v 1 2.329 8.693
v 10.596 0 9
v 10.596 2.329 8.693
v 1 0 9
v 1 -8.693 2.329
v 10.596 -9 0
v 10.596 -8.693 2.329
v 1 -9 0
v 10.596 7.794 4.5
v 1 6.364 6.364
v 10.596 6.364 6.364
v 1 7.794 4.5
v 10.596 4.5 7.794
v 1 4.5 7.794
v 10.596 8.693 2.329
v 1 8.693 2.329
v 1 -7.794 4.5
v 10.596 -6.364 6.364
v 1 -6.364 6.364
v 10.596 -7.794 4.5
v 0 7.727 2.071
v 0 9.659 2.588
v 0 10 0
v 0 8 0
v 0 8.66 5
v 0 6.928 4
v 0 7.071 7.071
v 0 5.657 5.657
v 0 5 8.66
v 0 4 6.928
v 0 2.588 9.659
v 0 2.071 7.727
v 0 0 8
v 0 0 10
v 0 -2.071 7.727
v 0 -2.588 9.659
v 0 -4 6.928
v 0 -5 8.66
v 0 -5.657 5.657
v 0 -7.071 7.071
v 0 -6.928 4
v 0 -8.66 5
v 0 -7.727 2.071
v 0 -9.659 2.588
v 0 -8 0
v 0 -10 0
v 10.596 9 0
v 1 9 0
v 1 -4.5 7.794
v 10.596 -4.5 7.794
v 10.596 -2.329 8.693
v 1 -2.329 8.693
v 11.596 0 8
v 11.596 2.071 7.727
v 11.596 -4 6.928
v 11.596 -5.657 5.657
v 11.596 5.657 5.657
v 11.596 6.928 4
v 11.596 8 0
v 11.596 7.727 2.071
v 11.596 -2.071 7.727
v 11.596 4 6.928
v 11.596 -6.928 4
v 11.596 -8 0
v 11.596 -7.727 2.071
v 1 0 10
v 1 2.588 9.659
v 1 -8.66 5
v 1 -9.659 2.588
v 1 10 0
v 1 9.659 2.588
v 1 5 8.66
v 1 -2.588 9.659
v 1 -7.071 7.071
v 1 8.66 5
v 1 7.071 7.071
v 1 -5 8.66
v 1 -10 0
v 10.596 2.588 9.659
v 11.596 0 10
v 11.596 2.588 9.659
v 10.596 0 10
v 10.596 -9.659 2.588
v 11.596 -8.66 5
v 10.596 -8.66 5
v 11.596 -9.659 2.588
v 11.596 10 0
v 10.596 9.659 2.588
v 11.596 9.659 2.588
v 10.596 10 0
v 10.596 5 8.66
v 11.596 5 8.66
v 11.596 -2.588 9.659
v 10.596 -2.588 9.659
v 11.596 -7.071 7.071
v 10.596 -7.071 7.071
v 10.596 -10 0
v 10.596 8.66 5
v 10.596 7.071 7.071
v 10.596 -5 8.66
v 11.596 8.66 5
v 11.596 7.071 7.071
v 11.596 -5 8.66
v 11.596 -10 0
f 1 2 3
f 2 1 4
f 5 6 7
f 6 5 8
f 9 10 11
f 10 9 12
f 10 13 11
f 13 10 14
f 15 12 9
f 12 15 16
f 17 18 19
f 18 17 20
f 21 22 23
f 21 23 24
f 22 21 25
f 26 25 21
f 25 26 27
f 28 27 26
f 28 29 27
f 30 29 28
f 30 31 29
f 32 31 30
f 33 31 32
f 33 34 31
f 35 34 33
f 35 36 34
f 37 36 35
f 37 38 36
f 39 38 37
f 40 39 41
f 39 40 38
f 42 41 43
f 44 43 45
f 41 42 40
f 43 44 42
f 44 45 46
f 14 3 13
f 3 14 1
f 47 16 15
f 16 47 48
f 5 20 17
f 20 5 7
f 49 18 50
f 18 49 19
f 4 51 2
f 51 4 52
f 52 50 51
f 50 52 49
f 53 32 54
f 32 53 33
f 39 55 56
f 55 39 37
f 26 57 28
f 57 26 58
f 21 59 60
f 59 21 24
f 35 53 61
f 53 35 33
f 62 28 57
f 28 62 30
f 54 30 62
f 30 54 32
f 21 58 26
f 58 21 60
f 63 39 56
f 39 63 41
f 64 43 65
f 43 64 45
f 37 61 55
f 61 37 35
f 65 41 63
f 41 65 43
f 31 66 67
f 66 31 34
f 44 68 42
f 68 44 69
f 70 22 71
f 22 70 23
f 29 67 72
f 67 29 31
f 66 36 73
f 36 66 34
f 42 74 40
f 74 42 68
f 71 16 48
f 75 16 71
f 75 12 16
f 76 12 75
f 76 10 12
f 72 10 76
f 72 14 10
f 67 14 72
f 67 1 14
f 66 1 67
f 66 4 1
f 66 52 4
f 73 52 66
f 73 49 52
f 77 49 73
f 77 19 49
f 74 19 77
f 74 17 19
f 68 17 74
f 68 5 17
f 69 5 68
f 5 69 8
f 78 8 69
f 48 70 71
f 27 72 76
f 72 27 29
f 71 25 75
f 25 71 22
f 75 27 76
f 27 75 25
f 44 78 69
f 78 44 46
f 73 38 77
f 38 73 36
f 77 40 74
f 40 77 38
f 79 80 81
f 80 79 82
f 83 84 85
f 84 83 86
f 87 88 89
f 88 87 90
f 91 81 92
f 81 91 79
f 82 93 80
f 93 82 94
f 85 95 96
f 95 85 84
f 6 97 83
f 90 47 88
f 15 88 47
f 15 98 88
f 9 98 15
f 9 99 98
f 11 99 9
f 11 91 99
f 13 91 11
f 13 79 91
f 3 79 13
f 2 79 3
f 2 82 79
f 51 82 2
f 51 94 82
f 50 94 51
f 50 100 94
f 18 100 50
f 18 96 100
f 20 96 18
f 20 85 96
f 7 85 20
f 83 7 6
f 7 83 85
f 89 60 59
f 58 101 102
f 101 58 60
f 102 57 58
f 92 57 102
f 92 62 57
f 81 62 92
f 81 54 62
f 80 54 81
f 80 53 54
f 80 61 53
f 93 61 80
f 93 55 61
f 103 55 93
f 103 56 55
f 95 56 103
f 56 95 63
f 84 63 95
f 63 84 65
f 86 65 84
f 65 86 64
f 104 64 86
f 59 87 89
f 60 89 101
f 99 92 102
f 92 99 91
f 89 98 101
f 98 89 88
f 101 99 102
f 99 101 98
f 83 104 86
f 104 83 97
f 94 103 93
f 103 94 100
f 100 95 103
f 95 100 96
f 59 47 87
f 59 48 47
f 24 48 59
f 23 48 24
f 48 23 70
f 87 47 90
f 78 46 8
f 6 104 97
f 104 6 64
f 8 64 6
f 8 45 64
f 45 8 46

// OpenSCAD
// file: ../build_environments.scad
// build_environments.scad: modules to build level sections
//

module pool(diameter=10.0, wall_height=2.0, step_width=3.0, connections=[])
{
    difference() {
        union() {
        difference() {
            cylinder(h=0.5,r1=diameter+step_width,r2=diameter+step_width,$fn=48);
            translate([0,0,-0.1])
                cylinder(h=0.7,r1=diameter,r2=diameter,$fn=48);
        }
        difference() {
            cylinder(h=wall_height,r1=diameter+step_width+1.0,r2=diameter+step_width+1.0,$fn=48);
            translate([0,0,-0.1])
                cylinder(h=wall_height+0.2,r1=diameter+step_width,r2=diameter+step_width,$fn=48);
        }
        }
    
        for (c = connections)
        {
            rotate([0,90,0]) {
                angle = atan2(c[1],c[0]);
                rotate([-angle,0,0]) {
                    cylinder(h=diameter+5.0,r1=c[2],r2=c[2],$fn=48);
                }
            }
        }
    }
}

module straight(length=10.0, width=2.0, dy1=0.0, dy2=0.0, dz=0.0)
{
    dims = [0, 0, 0, 0, 0, (dz/length)];
    matrix = [
        [ 1, dims[0], dims[1], 0 ],
        [ dims[2], 1, dims[4], 0 ],
        [ dims[5], dims[3], 1, 0 ],
        [ 0, 0, 0, 1 ]
    ];
    multmatrix(matrix)
    difference() {
        translate([dy1,0,0])
        union() {
            rotate([0,90,0]) {
                difference() {
                    cylinder(h=(length-dy1-dy2),r1=width+1.0,r2=width+1.0,$fn=24);
                    translate([0,0,-0.1])
                        cylinder(h=(length-dy1-dy2+0.2),r1=width,r2=width,$fn=24);
                }
                difference() {
                    cylinder(h=1.0,r1=width+2.0,r2=width+2.0,$fn=24);
                    translate([0,0,-0.1])
                        cylinder(h=1.2,r1=width,r2=width,$fn=24);
                }
                translate([0,0,(length-dy1-dy2)-1.0]) {
                    difference() {
                        cylinder(h=1.0,r1=width+2.0,r2=width+2.0,$fn=24);
                        translate([0,0,-0.1])
                            cylinder(h=1.2,r1=width,r2=width,$fn=24);
                    }
                }
            }
        }
        translate([0,0,-(2*width+4.0)/2])
            cube([3*length,3*length,2*width+4.0],center=true);
    }
}

module curve(p0=[0,0], center=[0,0], dir=1, angle=0.0, width=2.0)
{
    radius = sqrt((p0[0]-center[0])*(p0[0]-center[0]) + (p0[1]-center[1])*(p0[1]-center[1]));
    if (dir == 0) {
        difference() {
            rotate([0,0,-90])
            difference() {
                rotate_extrude(angle = angle, convexity = 10, $fn=32)
                    translate([radius, 0, 0])
                        circle(r = width+1.0,$fn=24);
                rotate([0,0,-1.0])
                    rotate_extrude(angle = angle+2.0, convexity = 10, $fn=32)
                        translate([radius, 0, 0])
                            circle(r = width,$fn=24);
            }
            translate([0,0,-(2*width+4.0)/2])
                cube([5*radius,5*radius,2*width+4.0],center=true);
        }
    }
    else {
        difference() {
            rotate([0,0,90])
            difference() {
                rotate_extrude(angle = -angle, convexity = 10, $fn=32)
                    translate([radius, 0, 0])
                        circle(r = width+1.0,$fn=24);
                rotate([0,0,1.0])
                    rotate_extrude(angle = -angle-2.0, convexity = 10, $fn=32)
                        translate([radius, 0, 0])
                            circle(r = width,$fn=24);
            }
            translate([0,0,-(2*width+4.0)/2])
                cube([5*radius,5*radius,2*width+4.0],center=true);
        }
    }

}

// test pool
//pool(diameter=12.0000, wall_height=3.0000, step_width=3.0000, connections=[[0.0000,-26.0000,2.0000], [23.6074,0.0000,2.0000]]);

// test straight, slope
//straight(length=26.0000, width=2.0000, dy1=11.8322, dy2=6.7082, dz=0.0000);
//straight(length=29.1549, width=12.0000, dy1=0.0000, dy2=0.0000, dz=-15.0000);

// test curve
//curve(p0=[23.6074, 0.0000], center=[23.6074, 5.0000], dir=0, angle=60.1011, width=2.0000);
//curve(p0=[33.6426, 12.4219], center=[37.9771, 9.9295], dir=1, angle=120.4627, width=2.0000);
// main file
use <../build_environments.scad>;
straight(length=11.5956, width=8.0000, dy1=0.0000, dy2=0.0000, dz=0.0000);
